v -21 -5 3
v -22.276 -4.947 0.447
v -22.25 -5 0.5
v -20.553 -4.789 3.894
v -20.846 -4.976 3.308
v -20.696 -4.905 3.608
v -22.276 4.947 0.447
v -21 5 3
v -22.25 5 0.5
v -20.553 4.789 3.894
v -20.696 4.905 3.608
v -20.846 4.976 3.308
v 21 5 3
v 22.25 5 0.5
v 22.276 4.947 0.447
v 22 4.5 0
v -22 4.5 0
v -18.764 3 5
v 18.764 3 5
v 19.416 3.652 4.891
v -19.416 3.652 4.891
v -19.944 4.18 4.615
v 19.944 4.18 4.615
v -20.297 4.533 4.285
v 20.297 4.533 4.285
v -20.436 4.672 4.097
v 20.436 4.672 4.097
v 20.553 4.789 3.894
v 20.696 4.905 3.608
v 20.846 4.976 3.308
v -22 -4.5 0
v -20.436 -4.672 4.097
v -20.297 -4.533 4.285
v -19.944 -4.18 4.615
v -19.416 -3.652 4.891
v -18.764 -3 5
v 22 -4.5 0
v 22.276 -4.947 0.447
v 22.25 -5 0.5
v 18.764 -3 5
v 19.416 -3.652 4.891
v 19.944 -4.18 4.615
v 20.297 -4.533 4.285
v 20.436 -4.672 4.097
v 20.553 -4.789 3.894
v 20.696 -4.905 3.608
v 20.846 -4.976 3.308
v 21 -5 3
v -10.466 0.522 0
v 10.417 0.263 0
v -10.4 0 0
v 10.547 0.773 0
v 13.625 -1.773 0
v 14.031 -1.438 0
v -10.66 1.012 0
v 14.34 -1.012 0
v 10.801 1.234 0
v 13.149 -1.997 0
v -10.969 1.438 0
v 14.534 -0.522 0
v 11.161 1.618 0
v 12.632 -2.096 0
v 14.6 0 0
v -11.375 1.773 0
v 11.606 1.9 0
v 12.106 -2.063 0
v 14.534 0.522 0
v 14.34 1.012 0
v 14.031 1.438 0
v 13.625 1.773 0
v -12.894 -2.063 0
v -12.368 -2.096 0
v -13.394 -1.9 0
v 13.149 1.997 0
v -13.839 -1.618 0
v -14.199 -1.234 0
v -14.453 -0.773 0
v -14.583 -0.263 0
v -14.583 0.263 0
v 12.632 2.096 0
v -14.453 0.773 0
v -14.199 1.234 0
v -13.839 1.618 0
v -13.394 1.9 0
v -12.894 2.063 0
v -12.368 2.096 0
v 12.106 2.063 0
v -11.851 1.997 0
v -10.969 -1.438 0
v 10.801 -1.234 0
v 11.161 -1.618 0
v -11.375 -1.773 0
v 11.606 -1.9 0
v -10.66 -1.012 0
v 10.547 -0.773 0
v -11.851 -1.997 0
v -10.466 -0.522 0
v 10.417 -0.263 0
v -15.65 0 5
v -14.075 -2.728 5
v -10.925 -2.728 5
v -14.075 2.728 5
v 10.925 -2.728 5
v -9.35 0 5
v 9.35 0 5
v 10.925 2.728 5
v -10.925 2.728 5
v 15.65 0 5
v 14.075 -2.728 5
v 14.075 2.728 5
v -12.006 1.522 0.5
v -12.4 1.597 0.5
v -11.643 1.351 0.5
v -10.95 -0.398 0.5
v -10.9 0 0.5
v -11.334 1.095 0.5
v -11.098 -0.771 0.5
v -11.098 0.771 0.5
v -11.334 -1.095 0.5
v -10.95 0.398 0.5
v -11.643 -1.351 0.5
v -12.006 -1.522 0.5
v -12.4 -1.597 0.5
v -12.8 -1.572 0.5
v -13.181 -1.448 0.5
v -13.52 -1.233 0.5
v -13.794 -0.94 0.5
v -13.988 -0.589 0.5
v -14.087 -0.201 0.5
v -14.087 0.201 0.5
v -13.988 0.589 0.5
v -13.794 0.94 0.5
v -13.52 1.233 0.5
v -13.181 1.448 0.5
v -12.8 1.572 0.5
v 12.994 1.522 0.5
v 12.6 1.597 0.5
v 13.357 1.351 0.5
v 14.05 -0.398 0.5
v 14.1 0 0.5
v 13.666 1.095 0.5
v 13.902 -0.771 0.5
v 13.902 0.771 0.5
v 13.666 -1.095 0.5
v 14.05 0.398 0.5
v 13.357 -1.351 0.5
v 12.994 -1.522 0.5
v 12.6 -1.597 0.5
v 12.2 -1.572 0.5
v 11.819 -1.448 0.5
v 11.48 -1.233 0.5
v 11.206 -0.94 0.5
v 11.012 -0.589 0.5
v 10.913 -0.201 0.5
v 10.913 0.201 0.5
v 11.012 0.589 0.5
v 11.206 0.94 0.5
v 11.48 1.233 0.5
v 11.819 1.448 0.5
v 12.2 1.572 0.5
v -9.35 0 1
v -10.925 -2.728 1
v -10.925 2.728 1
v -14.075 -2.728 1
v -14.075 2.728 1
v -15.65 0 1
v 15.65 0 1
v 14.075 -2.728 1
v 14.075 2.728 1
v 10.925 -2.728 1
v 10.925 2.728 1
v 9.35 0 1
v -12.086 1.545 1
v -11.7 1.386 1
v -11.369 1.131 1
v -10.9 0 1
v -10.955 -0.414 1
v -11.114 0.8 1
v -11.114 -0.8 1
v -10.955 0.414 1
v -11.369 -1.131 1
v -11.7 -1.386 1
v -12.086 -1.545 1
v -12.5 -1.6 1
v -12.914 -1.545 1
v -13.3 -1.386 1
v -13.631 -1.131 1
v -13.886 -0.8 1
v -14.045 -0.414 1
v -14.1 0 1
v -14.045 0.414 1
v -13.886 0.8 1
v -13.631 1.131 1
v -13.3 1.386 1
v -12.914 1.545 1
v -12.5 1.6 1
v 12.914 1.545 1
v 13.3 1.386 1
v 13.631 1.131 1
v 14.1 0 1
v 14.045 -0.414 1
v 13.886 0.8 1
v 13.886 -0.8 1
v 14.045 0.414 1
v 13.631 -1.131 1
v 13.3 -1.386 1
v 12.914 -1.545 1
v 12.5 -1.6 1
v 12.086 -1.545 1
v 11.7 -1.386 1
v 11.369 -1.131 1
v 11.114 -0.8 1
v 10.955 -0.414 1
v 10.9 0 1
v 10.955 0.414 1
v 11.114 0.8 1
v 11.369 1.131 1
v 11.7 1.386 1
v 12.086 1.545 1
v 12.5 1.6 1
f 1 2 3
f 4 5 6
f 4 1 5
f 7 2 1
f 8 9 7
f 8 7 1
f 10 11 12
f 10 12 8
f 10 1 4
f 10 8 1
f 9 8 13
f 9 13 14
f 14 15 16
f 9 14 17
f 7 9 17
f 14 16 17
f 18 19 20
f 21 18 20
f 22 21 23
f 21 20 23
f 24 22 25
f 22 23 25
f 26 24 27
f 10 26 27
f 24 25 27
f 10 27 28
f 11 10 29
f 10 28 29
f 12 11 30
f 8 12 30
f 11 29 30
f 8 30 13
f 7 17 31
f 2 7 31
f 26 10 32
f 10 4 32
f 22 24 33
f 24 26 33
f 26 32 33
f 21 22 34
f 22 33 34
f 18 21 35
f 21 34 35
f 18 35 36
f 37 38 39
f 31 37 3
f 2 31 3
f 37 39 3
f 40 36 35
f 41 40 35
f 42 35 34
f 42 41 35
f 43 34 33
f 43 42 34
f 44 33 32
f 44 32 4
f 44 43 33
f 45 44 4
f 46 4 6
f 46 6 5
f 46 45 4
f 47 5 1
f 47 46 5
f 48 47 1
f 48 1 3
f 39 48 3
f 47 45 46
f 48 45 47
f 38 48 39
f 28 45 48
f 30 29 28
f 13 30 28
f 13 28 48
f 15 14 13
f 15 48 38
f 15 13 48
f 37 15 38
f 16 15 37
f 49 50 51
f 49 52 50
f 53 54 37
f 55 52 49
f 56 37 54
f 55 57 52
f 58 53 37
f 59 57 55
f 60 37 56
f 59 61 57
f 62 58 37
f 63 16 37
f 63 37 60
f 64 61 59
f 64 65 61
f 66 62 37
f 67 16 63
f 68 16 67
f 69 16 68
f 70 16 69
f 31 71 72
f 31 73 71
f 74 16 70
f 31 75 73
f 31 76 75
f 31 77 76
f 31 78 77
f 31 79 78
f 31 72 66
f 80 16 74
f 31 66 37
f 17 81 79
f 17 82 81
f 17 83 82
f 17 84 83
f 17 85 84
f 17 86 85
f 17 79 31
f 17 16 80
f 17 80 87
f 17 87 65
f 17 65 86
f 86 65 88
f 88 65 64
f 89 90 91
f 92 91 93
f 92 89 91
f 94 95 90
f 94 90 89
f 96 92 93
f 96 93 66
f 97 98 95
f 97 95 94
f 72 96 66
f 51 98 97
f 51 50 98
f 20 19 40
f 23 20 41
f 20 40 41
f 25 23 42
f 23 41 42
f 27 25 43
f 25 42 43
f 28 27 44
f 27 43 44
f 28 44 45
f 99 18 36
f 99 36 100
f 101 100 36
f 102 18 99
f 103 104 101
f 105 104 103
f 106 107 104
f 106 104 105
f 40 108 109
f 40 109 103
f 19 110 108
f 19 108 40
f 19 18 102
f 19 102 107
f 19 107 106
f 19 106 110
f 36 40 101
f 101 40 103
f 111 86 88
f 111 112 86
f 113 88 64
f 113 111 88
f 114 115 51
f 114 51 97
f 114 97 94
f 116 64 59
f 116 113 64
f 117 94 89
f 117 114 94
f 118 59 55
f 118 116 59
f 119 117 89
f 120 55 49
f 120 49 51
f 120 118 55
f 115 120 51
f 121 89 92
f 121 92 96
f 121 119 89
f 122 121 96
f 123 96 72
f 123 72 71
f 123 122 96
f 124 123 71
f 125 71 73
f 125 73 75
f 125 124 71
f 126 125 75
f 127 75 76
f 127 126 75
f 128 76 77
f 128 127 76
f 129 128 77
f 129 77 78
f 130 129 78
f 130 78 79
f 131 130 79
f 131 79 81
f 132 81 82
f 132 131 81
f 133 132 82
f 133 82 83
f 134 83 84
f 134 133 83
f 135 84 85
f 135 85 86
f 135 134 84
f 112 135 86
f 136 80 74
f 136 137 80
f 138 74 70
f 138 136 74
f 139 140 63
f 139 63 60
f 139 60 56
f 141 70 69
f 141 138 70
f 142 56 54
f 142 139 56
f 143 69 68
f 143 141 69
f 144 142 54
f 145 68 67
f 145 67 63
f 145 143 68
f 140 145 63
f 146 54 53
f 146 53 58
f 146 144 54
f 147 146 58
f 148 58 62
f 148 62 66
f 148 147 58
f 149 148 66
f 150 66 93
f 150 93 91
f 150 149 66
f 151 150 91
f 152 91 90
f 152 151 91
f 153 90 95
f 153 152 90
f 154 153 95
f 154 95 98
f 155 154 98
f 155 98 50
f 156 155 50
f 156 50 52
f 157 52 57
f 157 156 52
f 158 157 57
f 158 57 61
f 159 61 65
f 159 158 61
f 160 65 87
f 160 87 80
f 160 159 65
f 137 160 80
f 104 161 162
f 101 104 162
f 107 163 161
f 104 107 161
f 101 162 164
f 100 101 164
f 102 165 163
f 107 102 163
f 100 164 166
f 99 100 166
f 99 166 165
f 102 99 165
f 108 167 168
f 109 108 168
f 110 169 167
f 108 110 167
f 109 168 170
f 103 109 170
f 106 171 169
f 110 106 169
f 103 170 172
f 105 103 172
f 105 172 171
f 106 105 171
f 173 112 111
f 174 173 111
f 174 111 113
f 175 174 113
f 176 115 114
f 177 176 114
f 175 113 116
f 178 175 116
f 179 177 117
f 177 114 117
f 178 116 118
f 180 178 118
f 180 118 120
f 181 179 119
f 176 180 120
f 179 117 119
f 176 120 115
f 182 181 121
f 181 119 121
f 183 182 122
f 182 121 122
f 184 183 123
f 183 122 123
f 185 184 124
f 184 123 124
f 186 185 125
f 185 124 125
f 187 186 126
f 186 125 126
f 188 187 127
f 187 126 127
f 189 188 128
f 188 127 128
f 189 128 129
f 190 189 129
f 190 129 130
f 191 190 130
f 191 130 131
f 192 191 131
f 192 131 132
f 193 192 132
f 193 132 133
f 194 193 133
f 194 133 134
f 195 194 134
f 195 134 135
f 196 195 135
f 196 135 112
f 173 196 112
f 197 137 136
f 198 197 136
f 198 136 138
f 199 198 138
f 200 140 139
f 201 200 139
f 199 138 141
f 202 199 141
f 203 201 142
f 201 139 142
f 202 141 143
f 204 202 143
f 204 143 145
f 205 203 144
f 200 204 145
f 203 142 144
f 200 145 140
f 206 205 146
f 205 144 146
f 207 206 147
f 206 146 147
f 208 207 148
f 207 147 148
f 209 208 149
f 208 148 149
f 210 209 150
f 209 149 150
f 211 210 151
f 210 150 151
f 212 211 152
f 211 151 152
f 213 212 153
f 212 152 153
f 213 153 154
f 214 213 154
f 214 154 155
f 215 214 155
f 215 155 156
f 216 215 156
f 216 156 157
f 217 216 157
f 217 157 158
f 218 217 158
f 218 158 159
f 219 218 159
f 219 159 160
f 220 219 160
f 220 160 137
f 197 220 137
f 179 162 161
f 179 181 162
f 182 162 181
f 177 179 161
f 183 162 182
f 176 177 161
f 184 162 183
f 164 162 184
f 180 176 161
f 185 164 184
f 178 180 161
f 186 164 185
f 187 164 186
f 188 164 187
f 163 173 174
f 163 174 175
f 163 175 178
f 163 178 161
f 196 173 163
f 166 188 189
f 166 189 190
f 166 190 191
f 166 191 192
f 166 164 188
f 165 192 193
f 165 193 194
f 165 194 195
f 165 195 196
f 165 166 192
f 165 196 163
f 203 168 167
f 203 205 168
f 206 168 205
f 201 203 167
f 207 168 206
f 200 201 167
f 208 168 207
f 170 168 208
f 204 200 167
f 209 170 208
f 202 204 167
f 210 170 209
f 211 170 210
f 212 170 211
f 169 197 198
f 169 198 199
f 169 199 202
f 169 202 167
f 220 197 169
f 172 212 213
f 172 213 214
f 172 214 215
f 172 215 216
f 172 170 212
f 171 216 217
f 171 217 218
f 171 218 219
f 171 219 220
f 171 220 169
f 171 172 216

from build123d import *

# Parameters (mm, degrees)
PAD_DEPTH       = 5
POCKET_DEPTH    = 4
SKETCH002_R     = 1.6
POCKET001_DEPTH = 5
FILLET_R        = 2
CHAMFER_SIZE    = 0.5


with BuildPart() as part:
    # Sketch → Pad (new body, symmetric)
    with BuildSketch(Plane.XZ):
        Polygon((-22.5, 0), (-20, 5), (20, 5), (22.5, 0), align=None)
    extrude(amount=PAD_DEPTH, both=True)

    # Sketch001 → Pocket (cut)
    with BuildSketch(Plane(origin=(0, 0, 5), x_dir=(-1, 0, 0), z_dir=(0, 0, 1))):
        Polygon((-14.075, 2.72798), (-10.925, 2.72798), (-9.35, 0), (-10.925, -2.72798), (-14.075, -2.72798), (-15.65, 0), align=None)
        Polygon((10.925, 2.72798), (14.075, 2.72798), (15.65, 0), (14.075, -2.72798), (10.925, -2.72798), (9.35, 0), align=None)
    extrude(amount=-POCKET_DEPTH, mode=Mode.SUBTRACT)

    # Sketch002 → Pocket001 (cut)
    with BuildSketch(Plane(origin=(0, 0, 0), x_dir=(1, 0, 0), z_dir=(0, 0, -1))):
        with Locations((-12.5, 0)):
            Circle(SKETCH002_R)
        with Locations((12.5, 0)):
            Circle(SKETCH002_R)
    extrude(amount=-POCKET001_DEPTH, mode=Mode.SUBTRACT)

    # Fillet
    fillet_edges = [part.edges().sort_by_distance(p)[0] for p in [
        (20, 0, 5),
        (-20, 0, 5),
        (0, -5, 5),
        (0, 5, 5),
    ]]
    fillet(fillet_edges, radius=FILLET_R)

    # Chamfer
    chamfer_edges = [part.edges().sort_by_distance(p)[0] for p in [
        (-14.1, 0, 0),
        (10.9, 0, 0),
        (22.5, 0, 0),
        (0, 5, 0),
        (0, -5, 0),
        (-22.5, 0, 0),
    ]]
    chamfer(chamfer_edges, length=CHAMFER_SIZE)


solid = part.part
